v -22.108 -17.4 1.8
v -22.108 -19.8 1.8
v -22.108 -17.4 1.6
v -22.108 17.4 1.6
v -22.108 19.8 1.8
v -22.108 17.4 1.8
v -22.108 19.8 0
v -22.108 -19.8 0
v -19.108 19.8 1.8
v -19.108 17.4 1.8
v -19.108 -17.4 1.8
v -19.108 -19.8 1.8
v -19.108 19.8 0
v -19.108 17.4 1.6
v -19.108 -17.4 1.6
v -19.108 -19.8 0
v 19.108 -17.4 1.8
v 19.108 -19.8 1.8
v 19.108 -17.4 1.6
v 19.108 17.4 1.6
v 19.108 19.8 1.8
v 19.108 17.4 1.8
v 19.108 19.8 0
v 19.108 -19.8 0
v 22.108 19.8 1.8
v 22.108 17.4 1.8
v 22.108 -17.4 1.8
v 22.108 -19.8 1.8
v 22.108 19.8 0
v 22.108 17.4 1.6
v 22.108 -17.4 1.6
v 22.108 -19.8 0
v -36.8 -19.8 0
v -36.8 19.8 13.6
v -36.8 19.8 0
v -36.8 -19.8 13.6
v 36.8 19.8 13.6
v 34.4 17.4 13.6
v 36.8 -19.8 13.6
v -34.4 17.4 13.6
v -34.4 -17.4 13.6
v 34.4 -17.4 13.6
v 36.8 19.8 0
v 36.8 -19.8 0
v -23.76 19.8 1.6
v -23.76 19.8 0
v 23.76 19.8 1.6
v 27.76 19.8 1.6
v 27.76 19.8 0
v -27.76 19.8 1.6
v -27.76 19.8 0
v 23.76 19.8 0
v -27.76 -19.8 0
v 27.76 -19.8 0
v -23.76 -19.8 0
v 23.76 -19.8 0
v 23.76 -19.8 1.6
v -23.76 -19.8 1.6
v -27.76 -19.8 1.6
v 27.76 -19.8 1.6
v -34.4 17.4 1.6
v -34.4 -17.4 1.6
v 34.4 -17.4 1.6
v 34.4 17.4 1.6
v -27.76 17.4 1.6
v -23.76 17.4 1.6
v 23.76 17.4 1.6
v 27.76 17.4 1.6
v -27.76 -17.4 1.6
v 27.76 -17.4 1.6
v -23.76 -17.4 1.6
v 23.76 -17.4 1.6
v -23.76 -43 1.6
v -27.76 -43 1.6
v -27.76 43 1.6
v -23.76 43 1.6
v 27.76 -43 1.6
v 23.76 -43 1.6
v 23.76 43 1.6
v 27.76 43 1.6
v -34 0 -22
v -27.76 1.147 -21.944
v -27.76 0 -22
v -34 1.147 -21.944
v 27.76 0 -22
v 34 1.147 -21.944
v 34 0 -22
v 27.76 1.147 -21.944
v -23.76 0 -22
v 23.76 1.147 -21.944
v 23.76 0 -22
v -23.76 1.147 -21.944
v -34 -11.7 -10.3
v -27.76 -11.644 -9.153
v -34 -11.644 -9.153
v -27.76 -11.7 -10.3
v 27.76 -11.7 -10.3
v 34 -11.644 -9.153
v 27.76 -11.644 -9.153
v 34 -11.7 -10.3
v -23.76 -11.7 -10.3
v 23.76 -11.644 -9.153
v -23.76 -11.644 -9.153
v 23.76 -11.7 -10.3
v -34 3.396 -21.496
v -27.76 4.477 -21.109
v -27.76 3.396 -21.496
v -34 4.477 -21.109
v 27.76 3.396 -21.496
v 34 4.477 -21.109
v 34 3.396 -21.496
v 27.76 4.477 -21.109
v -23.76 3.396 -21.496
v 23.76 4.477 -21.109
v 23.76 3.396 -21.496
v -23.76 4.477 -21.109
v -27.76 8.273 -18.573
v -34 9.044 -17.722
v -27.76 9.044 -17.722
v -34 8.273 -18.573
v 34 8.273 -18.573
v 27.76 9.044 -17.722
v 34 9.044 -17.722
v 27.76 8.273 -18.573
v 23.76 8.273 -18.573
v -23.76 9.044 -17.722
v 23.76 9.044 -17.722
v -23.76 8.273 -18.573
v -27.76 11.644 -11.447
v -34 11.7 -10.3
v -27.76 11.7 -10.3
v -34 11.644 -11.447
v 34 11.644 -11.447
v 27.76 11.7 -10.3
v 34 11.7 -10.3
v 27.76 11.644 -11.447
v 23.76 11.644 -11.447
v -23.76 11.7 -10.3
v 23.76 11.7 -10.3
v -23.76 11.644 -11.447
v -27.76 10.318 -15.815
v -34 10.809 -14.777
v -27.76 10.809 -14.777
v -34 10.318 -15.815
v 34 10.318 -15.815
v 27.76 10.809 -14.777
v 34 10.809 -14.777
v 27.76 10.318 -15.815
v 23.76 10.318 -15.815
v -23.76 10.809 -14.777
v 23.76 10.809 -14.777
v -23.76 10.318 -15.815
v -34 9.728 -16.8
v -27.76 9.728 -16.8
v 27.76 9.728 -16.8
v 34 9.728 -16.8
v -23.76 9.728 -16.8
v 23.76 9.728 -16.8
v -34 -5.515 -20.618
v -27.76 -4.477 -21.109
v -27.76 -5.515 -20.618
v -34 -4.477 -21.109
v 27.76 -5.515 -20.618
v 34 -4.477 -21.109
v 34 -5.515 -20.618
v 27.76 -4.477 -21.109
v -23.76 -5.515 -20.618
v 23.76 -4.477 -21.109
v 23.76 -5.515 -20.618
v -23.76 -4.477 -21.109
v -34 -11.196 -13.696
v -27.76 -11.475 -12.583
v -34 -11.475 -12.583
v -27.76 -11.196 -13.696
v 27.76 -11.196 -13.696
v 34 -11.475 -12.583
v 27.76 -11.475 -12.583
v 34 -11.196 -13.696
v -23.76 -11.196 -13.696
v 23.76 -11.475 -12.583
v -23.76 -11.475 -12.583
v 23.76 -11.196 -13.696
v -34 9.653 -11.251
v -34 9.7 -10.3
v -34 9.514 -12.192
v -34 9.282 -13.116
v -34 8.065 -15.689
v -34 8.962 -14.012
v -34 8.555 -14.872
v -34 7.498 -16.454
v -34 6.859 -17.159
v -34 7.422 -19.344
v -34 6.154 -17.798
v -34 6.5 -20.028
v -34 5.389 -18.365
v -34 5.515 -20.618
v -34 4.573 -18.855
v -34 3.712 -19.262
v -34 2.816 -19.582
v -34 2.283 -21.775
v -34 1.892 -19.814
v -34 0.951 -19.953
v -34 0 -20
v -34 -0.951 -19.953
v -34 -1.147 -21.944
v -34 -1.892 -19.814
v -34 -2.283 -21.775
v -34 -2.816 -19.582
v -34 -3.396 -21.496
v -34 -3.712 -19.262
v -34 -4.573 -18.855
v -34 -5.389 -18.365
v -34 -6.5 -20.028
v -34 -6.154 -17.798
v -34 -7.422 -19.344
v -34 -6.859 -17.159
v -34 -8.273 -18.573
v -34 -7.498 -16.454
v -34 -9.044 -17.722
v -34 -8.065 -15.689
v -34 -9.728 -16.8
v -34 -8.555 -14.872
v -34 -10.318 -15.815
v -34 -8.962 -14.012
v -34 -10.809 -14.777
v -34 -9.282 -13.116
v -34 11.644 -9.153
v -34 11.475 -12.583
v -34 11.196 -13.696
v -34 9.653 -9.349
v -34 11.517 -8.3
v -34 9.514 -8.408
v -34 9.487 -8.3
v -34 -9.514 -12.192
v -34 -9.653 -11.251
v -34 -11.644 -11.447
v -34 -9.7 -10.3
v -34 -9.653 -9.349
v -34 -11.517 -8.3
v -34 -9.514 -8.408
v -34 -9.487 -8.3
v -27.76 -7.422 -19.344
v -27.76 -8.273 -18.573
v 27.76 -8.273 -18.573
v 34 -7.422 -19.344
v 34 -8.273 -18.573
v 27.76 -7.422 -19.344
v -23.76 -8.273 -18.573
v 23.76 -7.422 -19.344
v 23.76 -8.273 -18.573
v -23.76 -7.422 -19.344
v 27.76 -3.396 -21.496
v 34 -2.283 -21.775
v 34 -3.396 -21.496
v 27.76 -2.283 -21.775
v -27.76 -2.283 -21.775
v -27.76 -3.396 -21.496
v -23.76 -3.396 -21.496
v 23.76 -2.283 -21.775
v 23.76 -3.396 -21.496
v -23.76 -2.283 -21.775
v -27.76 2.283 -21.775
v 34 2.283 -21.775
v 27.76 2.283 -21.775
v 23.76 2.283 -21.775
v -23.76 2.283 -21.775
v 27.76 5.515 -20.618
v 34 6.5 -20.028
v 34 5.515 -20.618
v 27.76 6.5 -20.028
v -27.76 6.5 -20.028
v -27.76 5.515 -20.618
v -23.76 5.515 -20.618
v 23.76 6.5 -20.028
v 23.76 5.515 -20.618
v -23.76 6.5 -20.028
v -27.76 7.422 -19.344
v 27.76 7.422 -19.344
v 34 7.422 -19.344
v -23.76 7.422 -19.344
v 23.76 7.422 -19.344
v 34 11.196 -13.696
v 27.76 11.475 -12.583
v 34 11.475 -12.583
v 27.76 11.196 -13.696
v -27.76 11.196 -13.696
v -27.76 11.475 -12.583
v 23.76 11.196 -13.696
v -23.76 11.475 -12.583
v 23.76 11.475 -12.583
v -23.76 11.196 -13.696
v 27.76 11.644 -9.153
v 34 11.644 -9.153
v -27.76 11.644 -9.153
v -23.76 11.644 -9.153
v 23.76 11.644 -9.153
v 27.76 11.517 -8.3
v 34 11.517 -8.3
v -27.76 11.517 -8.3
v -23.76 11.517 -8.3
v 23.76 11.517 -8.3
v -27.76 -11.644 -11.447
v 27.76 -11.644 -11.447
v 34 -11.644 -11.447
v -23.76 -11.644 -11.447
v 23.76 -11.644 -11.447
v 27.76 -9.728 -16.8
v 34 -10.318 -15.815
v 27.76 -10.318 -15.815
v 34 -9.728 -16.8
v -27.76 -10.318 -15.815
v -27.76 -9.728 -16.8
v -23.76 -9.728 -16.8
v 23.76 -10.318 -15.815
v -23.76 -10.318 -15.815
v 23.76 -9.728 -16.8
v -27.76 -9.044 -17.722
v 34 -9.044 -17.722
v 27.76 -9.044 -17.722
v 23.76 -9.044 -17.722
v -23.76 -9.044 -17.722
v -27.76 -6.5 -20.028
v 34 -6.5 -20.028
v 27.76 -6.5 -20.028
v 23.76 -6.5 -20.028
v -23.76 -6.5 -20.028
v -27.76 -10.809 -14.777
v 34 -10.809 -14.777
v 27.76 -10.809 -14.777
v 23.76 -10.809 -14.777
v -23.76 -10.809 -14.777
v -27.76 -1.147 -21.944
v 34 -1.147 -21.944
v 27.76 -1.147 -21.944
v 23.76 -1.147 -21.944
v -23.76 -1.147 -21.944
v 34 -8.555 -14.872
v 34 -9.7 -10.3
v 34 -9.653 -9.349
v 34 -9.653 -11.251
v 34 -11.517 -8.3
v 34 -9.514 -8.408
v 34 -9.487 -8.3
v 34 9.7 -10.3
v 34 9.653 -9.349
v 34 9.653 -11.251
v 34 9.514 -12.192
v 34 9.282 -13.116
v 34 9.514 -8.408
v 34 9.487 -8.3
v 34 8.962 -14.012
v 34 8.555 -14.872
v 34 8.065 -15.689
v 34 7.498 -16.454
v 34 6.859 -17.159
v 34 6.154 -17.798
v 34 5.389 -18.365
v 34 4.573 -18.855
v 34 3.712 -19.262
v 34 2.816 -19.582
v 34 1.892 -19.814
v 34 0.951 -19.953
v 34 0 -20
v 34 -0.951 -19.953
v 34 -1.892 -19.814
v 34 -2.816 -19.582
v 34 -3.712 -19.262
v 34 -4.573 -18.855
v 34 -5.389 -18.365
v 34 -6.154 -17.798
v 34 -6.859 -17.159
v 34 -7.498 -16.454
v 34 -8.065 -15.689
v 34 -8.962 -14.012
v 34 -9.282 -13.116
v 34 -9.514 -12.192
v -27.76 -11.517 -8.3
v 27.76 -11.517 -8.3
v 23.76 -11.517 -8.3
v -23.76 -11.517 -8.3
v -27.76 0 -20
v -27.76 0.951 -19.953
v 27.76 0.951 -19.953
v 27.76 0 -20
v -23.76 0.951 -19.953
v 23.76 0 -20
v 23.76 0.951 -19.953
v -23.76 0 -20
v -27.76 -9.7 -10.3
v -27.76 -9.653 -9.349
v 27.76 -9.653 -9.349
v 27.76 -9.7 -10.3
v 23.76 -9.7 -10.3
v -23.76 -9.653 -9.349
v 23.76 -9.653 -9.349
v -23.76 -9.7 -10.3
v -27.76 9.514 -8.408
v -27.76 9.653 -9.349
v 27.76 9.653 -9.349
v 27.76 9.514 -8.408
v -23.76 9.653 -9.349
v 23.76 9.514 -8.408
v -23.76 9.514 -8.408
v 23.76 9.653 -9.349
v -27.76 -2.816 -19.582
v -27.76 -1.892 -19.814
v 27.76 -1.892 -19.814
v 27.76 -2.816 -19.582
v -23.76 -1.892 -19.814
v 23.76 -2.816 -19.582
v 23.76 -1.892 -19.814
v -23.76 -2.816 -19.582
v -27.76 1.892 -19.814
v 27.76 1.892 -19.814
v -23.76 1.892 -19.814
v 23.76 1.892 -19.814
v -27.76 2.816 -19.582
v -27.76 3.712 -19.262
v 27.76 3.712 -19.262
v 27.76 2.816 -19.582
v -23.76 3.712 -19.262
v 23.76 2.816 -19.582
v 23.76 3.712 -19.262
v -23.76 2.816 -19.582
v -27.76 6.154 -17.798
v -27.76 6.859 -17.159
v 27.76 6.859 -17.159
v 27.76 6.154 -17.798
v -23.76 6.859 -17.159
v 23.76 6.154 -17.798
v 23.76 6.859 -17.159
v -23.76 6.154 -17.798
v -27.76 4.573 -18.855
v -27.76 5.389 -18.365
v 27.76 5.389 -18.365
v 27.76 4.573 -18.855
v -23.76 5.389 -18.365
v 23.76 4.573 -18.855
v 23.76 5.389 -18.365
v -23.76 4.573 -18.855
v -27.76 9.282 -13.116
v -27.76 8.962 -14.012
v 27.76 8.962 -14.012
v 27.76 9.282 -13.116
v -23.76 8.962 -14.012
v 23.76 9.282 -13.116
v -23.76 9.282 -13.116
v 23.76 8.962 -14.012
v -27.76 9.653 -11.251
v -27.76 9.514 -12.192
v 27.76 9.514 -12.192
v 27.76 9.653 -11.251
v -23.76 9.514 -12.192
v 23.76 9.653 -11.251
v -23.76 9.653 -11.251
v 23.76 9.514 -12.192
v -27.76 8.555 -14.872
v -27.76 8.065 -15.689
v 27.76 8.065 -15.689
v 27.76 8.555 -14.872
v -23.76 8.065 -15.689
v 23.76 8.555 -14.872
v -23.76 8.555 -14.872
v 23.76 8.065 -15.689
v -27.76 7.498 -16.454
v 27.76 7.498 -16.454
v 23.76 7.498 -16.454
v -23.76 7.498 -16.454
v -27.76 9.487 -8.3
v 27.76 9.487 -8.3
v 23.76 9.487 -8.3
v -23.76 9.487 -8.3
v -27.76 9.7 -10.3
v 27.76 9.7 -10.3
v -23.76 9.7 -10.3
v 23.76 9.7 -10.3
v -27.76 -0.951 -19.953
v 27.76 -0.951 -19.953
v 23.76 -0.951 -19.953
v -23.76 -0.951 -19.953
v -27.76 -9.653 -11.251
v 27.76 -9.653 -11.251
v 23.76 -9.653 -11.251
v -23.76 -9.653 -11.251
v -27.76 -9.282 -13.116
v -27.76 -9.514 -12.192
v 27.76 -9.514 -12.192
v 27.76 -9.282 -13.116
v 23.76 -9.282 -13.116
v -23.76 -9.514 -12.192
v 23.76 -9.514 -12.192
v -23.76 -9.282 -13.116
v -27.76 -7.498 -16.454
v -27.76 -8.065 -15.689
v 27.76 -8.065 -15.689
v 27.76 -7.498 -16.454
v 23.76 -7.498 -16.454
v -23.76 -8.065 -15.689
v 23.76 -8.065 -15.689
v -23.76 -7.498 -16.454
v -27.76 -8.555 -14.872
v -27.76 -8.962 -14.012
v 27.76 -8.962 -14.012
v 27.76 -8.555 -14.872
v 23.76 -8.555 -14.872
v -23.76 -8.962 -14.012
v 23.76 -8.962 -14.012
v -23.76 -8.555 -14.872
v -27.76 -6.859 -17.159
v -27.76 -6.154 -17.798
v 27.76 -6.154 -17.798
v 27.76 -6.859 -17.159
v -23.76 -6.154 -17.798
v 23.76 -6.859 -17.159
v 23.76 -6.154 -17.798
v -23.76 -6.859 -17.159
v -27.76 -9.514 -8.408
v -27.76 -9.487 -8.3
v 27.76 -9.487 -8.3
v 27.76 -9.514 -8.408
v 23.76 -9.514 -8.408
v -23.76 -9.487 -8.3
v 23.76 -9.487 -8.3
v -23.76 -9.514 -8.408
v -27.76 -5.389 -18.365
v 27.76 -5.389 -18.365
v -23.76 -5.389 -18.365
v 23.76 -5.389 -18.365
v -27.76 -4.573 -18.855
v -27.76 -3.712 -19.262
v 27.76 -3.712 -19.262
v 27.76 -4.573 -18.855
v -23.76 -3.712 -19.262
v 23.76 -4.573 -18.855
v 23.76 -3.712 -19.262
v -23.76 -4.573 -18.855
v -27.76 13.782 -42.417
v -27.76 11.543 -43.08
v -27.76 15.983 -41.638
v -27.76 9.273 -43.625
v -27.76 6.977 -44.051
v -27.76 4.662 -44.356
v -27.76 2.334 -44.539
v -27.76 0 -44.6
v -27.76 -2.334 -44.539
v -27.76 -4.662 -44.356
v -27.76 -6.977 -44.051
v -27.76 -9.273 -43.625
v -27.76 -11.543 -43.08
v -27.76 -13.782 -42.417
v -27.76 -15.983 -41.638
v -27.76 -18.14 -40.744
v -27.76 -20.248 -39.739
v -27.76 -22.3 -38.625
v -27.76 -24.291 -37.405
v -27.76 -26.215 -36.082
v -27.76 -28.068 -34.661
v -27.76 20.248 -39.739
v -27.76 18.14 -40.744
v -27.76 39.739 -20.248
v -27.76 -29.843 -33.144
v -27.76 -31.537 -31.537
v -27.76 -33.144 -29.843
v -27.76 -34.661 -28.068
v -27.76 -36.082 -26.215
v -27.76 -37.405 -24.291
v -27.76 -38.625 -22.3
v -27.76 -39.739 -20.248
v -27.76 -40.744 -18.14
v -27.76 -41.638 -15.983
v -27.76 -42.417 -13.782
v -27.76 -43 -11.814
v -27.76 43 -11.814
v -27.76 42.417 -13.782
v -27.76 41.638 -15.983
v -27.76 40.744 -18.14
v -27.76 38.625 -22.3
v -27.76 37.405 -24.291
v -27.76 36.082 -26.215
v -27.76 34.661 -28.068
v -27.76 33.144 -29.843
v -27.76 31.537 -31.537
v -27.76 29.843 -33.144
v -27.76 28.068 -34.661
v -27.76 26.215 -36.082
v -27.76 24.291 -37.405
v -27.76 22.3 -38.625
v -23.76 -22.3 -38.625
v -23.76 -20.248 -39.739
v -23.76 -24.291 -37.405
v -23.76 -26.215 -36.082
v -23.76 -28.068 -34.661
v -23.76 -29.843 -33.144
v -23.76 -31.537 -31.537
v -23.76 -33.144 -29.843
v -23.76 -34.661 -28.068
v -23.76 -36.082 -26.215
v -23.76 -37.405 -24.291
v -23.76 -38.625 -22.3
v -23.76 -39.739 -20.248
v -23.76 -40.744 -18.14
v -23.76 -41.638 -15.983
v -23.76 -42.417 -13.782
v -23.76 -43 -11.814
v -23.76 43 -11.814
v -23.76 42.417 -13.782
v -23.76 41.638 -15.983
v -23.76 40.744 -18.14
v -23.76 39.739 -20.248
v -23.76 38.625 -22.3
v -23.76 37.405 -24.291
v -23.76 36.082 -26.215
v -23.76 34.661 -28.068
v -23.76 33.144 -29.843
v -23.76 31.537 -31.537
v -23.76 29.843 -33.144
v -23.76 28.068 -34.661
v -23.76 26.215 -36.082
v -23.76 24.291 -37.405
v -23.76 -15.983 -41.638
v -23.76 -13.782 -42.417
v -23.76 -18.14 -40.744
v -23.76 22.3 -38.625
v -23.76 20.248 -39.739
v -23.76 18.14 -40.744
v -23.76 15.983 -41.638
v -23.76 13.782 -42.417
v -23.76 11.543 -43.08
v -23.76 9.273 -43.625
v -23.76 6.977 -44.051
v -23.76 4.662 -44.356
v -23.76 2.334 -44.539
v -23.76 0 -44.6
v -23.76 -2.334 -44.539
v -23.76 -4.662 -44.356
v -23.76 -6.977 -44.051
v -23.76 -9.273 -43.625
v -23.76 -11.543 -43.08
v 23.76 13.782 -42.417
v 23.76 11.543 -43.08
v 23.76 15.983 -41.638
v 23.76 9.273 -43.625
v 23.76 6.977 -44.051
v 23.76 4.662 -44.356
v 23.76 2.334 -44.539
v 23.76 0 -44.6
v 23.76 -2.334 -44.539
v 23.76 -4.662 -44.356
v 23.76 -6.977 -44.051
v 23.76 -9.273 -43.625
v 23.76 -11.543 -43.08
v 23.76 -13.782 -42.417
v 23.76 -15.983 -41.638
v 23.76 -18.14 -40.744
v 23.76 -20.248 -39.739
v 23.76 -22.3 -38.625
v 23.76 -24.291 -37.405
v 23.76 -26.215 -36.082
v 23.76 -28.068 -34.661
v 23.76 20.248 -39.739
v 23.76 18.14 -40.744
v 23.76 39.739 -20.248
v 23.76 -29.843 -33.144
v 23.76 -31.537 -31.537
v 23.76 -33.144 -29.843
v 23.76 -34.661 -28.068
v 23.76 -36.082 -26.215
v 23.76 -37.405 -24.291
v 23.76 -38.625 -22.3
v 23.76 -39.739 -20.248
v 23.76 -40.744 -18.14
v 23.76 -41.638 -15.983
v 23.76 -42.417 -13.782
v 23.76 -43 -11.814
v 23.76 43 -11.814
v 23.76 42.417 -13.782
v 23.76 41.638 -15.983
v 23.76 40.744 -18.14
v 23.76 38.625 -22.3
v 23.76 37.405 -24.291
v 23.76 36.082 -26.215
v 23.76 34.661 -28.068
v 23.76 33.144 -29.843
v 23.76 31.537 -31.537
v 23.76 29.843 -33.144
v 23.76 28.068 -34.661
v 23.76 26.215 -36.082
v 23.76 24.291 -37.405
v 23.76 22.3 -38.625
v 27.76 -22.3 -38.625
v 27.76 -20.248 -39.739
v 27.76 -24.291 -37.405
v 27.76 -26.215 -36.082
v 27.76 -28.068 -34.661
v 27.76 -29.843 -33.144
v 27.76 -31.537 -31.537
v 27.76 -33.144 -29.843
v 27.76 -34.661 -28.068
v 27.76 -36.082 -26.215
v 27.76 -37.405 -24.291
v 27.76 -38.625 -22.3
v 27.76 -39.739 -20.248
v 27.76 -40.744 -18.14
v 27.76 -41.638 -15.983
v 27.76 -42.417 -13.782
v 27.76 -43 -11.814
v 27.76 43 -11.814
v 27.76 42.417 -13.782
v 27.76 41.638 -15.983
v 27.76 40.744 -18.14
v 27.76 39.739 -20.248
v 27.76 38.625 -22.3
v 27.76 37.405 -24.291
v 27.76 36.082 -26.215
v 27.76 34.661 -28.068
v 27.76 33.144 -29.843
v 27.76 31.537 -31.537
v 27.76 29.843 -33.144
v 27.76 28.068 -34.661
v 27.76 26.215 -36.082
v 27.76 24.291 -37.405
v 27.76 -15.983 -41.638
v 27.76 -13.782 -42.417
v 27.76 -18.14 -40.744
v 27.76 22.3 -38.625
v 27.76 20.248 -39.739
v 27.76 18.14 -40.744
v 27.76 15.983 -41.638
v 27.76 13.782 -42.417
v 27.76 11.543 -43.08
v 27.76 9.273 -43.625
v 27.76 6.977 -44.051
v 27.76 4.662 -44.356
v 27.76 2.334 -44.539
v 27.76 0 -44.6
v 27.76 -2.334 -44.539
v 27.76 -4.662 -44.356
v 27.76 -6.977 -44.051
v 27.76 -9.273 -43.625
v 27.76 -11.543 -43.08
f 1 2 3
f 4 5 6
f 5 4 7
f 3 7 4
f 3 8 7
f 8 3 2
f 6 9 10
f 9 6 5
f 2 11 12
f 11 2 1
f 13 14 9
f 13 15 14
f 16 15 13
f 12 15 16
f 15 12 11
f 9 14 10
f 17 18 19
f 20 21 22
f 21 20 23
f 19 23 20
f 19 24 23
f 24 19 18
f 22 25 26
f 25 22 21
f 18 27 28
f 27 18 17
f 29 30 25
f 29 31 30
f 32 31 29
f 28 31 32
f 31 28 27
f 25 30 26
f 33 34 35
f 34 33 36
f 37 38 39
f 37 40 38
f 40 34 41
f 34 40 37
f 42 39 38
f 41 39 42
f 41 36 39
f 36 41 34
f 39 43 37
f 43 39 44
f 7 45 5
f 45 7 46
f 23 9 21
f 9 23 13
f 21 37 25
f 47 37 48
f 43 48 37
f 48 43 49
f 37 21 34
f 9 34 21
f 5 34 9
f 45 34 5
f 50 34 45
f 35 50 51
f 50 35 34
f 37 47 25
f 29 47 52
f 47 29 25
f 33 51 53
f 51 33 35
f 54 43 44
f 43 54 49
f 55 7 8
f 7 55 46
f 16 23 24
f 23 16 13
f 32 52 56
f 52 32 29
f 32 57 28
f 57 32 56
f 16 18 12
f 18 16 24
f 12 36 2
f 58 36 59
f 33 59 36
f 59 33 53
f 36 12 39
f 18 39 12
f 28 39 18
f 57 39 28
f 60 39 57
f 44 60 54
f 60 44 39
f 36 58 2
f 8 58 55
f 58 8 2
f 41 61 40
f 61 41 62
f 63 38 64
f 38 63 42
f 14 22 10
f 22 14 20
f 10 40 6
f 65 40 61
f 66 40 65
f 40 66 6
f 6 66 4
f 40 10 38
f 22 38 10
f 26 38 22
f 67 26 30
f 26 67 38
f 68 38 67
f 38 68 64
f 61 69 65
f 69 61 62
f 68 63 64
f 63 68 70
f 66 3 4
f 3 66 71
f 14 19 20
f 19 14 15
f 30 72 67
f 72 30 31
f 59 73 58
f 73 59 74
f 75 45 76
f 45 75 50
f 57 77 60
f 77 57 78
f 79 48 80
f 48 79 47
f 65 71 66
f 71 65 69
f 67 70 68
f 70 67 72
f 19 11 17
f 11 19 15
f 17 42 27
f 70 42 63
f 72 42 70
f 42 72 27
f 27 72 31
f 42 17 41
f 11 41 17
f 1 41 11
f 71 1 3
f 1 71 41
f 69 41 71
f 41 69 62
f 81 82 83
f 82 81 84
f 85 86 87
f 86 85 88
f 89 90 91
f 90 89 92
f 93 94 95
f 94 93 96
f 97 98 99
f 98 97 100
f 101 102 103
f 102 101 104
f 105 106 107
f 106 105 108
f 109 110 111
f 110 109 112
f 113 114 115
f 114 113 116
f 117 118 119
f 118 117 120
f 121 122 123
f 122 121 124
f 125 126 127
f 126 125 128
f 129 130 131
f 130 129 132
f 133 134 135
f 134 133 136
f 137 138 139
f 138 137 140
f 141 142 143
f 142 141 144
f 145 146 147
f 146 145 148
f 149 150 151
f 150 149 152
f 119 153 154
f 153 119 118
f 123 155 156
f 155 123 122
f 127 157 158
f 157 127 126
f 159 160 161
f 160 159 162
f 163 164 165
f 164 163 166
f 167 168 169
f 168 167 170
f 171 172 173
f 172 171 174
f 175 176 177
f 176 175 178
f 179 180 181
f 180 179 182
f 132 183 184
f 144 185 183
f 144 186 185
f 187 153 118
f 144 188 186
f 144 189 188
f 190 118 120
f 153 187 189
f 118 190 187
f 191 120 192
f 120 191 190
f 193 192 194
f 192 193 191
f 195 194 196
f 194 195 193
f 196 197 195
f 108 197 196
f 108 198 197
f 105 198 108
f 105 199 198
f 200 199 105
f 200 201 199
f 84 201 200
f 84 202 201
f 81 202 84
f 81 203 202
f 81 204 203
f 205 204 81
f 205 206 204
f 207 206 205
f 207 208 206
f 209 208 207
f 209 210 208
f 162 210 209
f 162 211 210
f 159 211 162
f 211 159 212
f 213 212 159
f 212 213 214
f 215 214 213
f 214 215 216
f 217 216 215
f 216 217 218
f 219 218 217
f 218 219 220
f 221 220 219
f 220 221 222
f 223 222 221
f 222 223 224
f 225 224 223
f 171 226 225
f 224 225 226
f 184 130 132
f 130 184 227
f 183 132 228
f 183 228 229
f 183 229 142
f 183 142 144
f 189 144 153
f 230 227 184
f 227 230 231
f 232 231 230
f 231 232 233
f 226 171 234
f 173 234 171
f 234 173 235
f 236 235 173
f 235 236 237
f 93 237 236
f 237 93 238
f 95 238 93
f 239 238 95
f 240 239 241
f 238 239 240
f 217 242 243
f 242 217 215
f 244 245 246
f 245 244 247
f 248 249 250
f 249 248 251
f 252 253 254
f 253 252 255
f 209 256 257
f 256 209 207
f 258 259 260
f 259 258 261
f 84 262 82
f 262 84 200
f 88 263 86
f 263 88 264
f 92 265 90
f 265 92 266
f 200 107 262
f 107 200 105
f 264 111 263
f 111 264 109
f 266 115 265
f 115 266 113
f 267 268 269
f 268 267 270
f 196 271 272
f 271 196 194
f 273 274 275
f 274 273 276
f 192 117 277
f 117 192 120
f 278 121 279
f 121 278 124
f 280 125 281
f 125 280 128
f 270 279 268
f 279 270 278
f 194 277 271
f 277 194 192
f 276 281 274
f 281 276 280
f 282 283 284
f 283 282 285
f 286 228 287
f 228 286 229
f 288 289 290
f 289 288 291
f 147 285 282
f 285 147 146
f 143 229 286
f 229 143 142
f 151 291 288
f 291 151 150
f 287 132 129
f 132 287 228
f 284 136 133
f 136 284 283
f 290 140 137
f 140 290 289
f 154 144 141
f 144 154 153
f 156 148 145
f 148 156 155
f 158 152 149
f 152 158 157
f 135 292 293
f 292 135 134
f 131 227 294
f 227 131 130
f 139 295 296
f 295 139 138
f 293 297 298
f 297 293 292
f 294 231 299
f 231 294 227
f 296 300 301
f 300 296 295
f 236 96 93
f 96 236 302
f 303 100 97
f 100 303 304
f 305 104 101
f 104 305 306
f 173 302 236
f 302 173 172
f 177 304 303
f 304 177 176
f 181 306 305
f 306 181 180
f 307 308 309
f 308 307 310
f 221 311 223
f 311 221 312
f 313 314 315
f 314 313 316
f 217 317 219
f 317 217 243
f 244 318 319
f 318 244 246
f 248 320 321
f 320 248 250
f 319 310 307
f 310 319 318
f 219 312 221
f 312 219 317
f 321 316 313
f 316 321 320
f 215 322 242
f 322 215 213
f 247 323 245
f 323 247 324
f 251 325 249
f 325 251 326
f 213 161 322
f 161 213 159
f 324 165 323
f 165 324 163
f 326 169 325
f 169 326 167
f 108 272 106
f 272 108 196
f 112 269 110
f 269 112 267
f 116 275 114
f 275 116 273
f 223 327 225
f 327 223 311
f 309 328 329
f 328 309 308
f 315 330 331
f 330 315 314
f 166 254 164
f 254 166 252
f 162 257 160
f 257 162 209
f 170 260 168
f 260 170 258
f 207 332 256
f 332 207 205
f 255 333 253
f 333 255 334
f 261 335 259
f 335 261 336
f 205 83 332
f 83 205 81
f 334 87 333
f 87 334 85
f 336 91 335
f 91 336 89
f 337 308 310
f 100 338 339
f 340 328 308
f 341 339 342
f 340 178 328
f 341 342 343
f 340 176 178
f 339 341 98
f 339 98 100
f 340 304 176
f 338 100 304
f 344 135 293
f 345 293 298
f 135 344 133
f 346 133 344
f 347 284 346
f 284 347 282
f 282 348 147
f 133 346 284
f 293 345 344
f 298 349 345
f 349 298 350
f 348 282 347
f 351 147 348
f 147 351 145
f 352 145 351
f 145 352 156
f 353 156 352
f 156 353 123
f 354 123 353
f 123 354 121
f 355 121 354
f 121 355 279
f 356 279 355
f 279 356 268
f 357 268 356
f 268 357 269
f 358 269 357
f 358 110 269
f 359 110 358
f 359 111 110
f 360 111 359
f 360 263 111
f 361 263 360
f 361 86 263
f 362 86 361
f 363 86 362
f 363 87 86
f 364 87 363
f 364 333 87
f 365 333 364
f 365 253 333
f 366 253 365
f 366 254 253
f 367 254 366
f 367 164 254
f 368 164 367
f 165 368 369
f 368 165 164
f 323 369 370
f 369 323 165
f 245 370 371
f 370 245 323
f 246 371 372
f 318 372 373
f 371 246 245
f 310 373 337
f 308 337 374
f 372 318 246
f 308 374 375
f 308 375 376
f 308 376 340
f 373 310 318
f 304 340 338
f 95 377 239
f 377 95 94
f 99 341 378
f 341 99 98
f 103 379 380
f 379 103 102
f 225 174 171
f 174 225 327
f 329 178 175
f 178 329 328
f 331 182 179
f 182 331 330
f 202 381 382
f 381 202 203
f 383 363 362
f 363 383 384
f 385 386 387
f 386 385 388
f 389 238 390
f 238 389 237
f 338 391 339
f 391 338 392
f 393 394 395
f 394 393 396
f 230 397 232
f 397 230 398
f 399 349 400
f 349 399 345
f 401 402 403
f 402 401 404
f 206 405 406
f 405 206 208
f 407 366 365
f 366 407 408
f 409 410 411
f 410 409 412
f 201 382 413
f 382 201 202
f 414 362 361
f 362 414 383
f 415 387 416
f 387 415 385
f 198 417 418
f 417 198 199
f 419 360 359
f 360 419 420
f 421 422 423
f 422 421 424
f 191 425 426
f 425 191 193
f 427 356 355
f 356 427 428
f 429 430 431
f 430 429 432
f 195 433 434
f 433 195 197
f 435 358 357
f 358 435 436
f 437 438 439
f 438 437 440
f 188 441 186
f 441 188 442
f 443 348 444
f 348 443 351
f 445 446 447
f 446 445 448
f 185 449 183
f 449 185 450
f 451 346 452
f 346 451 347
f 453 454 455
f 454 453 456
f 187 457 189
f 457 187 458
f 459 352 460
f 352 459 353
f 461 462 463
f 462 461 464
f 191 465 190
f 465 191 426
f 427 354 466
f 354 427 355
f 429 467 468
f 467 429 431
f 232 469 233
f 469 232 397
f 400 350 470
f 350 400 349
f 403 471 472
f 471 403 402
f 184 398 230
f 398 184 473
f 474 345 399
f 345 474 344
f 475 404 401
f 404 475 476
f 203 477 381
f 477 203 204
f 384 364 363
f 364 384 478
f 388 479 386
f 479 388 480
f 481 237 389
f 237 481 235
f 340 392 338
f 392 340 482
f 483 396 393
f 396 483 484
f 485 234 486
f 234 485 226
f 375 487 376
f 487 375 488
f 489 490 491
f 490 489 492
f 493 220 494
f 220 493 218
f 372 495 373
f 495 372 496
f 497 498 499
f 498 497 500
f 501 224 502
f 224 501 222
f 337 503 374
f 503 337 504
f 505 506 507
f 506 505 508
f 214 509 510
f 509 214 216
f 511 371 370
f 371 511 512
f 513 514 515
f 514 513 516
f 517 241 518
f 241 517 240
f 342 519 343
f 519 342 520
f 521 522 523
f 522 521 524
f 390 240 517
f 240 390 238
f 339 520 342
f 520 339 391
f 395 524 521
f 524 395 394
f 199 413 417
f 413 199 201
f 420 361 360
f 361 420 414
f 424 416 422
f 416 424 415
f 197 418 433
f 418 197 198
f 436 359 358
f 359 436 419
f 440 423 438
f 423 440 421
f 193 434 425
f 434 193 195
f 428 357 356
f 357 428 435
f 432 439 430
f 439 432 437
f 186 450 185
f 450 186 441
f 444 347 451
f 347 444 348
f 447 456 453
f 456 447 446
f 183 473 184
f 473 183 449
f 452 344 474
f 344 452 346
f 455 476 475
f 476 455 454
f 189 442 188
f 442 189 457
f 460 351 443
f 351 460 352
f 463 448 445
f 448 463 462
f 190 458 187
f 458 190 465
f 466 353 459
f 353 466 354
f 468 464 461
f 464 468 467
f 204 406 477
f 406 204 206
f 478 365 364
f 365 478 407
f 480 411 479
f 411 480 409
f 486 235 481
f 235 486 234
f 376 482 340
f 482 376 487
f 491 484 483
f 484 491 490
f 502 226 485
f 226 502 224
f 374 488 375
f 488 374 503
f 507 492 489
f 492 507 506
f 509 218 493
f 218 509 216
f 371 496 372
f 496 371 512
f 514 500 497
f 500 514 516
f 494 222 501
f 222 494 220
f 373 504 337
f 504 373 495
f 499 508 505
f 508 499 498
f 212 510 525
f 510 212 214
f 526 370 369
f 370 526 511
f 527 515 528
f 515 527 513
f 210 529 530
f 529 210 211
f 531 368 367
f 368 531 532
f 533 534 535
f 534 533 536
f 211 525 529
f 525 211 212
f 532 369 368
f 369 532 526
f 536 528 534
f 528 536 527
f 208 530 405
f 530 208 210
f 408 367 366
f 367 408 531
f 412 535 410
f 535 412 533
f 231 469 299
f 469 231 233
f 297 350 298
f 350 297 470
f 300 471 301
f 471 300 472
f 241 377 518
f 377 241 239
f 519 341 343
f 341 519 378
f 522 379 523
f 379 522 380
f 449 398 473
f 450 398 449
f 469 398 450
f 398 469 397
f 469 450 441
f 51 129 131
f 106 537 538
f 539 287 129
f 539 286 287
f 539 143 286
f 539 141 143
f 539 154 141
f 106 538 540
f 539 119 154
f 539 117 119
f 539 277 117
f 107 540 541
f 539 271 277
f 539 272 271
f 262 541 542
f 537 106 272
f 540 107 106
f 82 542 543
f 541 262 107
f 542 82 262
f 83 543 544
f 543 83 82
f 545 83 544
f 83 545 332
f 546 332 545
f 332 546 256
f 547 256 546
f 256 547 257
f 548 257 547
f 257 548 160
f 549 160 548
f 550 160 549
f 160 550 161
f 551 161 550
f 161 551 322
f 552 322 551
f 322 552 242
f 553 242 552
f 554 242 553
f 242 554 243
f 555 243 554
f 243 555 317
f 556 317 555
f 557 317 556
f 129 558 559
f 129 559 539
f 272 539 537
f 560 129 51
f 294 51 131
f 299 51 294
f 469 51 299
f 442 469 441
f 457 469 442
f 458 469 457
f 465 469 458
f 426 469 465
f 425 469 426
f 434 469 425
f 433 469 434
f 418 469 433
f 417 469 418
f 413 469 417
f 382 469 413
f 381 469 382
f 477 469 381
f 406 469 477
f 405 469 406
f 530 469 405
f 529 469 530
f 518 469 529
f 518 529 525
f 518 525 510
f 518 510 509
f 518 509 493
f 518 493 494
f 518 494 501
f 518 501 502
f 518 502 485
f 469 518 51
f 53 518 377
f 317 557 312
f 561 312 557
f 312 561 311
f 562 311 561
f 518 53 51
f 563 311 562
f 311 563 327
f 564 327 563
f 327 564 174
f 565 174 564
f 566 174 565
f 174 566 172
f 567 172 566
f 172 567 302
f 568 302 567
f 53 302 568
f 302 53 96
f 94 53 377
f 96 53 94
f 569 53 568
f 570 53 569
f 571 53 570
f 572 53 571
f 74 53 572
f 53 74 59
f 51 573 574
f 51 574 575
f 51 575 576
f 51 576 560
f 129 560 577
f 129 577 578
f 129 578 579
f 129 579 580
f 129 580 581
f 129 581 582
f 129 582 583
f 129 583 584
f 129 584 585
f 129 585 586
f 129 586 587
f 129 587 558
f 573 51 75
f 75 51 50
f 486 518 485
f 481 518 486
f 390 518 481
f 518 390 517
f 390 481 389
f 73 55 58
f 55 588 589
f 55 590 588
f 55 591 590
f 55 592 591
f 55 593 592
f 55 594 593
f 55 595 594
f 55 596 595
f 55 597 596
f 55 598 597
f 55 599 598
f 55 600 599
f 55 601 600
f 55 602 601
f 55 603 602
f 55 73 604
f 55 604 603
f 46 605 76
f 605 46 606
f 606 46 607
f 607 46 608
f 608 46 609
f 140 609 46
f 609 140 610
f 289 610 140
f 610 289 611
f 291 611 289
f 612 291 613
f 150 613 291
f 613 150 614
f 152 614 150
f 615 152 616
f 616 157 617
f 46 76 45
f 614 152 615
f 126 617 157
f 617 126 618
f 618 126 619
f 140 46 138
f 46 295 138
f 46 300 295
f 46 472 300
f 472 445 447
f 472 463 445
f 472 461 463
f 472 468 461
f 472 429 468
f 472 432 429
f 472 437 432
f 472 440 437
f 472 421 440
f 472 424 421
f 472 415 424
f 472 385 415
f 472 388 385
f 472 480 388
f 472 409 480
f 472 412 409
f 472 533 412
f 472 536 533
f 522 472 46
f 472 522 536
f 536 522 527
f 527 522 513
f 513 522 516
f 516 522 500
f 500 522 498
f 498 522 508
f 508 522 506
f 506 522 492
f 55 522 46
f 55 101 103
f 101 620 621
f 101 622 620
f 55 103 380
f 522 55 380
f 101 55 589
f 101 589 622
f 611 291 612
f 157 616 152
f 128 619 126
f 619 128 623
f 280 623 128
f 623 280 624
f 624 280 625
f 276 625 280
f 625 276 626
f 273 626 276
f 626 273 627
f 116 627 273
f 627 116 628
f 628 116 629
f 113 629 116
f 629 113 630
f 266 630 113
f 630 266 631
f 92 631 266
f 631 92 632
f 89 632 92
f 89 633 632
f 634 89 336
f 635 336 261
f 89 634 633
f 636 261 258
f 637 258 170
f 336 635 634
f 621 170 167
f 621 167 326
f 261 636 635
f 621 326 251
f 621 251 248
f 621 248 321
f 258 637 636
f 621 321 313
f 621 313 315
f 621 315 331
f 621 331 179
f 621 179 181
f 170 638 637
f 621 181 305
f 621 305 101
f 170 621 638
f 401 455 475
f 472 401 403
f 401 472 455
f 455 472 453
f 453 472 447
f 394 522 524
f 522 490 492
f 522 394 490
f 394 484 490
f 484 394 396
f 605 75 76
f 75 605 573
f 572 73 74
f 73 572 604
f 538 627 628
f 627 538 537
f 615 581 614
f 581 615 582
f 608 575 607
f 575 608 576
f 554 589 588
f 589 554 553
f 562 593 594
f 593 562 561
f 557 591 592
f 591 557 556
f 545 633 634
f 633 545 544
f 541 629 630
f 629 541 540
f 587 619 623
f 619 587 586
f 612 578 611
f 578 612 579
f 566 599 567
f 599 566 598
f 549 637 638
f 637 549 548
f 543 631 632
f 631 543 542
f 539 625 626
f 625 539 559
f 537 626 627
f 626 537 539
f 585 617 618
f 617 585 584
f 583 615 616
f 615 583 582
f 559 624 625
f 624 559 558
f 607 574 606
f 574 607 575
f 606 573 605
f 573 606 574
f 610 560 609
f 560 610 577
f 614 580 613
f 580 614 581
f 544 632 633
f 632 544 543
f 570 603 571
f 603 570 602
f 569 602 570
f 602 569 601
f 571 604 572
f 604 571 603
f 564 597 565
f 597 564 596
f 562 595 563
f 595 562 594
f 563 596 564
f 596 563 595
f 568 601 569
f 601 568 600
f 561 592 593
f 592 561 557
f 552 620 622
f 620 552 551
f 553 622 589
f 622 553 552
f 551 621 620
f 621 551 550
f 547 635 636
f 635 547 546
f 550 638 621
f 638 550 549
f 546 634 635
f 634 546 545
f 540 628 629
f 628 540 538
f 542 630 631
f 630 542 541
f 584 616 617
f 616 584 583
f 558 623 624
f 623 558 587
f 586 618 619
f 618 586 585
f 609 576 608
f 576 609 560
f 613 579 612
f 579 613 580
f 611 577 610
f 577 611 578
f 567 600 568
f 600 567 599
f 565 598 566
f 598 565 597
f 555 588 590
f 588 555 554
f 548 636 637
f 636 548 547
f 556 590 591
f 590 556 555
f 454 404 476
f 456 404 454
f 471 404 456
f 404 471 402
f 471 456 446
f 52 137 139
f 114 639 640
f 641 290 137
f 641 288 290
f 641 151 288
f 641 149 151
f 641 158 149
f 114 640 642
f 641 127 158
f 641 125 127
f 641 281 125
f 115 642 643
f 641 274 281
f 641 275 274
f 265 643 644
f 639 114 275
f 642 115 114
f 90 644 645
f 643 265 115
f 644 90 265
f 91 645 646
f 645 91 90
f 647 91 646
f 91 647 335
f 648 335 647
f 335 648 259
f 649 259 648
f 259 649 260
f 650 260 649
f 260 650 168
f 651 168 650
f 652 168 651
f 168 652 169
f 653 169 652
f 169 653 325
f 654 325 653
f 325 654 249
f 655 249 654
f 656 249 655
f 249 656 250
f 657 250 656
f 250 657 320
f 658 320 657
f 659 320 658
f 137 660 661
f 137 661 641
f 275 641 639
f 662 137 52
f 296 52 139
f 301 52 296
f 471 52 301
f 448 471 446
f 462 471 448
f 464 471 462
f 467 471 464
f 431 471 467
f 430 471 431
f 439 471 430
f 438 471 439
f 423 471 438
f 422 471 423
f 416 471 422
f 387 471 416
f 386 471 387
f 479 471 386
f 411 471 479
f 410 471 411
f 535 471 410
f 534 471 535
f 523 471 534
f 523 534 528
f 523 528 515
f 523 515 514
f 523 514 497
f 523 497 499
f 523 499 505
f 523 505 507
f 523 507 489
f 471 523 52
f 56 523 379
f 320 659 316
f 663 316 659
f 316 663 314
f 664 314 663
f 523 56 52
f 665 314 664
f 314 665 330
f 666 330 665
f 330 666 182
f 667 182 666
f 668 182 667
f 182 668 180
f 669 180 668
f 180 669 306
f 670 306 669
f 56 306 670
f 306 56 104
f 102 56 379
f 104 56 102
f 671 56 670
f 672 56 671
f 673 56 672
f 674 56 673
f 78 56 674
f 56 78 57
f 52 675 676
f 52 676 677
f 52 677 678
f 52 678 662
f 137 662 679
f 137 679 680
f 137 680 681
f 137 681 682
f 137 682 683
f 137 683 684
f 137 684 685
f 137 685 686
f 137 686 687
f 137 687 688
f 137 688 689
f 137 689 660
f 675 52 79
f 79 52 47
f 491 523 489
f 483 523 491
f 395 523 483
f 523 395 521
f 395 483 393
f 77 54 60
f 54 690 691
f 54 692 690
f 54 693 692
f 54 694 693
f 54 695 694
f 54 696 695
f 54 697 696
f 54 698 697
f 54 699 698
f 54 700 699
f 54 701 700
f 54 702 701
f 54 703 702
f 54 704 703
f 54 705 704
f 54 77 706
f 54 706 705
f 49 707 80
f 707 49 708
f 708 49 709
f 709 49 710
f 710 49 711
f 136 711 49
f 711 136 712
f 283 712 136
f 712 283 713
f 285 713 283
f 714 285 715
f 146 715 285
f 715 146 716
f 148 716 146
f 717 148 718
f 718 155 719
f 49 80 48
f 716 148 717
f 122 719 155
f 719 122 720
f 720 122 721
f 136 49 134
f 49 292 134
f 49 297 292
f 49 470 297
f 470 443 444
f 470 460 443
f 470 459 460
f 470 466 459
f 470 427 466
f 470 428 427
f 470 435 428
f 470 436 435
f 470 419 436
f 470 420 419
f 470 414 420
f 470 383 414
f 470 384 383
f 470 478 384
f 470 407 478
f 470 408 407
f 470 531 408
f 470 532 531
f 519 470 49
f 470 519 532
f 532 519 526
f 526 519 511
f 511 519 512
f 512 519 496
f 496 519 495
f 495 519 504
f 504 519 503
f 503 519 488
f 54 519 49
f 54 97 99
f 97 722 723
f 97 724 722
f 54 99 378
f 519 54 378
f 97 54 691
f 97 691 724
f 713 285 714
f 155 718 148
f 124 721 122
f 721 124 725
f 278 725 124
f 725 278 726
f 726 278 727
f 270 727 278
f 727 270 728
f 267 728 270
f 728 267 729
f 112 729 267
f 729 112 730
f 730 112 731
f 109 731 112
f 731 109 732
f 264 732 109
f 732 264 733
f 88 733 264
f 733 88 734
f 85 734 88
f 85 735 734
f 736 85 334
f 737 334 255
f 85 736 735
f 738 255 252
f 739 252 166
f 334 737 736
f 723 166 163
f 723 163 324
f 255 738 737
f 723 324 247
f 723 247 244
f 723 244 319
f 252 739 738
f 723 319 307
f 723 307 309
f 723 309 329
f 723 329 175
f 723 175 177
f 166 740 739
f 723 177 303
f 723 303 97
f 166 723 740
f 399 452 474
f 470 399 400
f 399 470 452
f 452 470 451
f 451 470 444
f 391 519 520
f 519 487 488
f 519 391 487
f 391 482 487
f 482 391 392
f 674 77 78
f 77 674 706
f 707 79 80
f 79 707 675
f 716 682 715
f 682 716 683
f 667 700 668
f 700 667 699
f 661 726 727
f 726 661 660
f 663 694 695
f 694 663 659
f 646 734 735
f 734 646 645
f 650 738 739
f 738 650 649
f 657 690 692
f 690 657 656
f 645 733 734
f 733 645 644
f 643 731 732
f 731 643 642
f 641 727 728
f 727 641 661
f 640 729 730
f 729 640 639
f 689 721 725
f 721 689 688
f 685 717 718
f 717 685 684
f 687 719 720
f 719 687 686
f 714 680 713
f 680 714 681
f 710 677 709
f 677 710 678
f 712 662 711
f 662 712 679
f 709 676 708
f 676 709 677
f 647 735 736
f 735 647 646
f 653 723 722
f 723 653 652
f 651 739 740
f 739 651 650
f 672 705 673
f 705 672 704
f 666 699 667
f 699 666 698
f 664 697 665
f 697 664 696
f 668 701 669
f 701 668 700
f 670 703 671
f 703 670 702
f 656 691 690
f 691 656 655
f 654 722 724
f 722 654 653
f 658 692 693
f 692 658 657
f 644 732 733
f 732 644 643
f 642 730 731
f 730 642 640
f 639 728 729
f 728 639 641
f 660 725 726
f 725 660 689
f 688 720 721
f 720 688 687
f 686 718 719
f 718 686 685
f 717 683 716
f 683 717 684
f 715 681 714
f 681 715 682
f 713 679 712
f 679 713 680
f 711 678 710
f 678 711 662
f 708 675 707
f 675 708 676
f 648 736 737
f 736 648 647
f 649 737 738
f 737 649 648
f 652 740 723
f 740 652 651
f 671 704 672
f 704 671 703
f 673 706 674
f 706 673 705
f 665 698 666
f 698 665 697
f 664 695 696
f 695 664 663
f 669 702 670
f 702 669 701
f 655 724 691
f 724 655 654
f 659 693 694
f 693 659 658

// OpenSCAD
// file: params.scad
// SEA:CUT / Friendly Floatee drifter — shared parameters (mm)
// Hardware: CERN-OHL-P. Docs: CC BY 4.0. Firmware: MIT.
// MEASURE YOUR OWN BOTTLE and edit these. Defaults approximate a 1 L round PET bottle.

// --- bottle (upcycled PET) ---
bottle_id = 90;            // bottle inner diameter
bottle_r  = bottle_id / 2; // derived inner radius

// --- printing ---
wall = 2.4;                // printed wall thickness
clr  = 0.4;                // fit clearance
$fn  = 64;                 // curve smoothness

// --- LILYGO T-A7670G board (approximate, incl. headers) ---
board_l = 68;
board_w = 34;
board_h = 12;

// --- 18650 protected cell ---
cell_d = 18.6;
cell_l = 68;

// --- lead-free ballast pocket (self-righting weight) ---
ballast_l = 55;
ballast_w = 22;
// main file
// SEA:CUT / Friendly Floatee — electronics bracket
// Holds the LILYGO T-A7670G board and the 18650 cell, self-locating in the bottle.
// Axes: X = bottle long axis, +Z = up (antenna side), -Z = belly.
include <params.scad>

module cell_holder() {
    // C-channel snap holder for one 18650, along X, opening up
    difference() {
        rotate([0, 90, 0]) cylinder(h = cell_l, r = cell_d/2 + wall, center = true);
        rotate([0, 90, 0]) cylinder(h = cell_l + 2, r = cell_d/2 + clr, center = true);
        translate([-cell_l/2 - 1, -(cell_d/2 + wall + 1), 2])
            cube([cell_l + 2, cell_d + 2*wall + 2, cell_d]);
    }
}

module electronics_bracket() {
    bl = board_l + 2*wall + 2*clr;
    bw = board_w + 2*wall + 2*clr;
    ft = 1.6;
    union() {
        // open board tray
        difference() {
            translate([-bl/2, -bw/2, 0]) cube([bl, bw, ft + board_h]);
            translate([-bl/2 + wall, -bw/2 + wall, ft])
                cube([bl - 2*wall, bw - 2*wall, board_h + 1]);
            // zip-tie slots
            for (x = [-bl*0.28, bl*0.28])
                translate([x - 1.5, -bw/2 - 1, -1]) cube([3, bw + 2, ft + 1.2]);
        }
        // battery holder under the tray
        translate([0, 0, -cell_d/2 - 1]) cell_holder();
        // two curved locating ribs to seat in the bottle wall
        for (x = [-bl*0.35, bl*0.35])
            intersection() {
                translate([x - 2, -bottle_r + 2, -bottle_r]) cube([4, 2*bottle_r - 4, bottle_r + ft]);
                rotate([0, 90, 0]) cylinder(h = bl*2, r = bottle_r - clr, center = true, $fn = 120);
            }
    }
}

electronics_bracket();
